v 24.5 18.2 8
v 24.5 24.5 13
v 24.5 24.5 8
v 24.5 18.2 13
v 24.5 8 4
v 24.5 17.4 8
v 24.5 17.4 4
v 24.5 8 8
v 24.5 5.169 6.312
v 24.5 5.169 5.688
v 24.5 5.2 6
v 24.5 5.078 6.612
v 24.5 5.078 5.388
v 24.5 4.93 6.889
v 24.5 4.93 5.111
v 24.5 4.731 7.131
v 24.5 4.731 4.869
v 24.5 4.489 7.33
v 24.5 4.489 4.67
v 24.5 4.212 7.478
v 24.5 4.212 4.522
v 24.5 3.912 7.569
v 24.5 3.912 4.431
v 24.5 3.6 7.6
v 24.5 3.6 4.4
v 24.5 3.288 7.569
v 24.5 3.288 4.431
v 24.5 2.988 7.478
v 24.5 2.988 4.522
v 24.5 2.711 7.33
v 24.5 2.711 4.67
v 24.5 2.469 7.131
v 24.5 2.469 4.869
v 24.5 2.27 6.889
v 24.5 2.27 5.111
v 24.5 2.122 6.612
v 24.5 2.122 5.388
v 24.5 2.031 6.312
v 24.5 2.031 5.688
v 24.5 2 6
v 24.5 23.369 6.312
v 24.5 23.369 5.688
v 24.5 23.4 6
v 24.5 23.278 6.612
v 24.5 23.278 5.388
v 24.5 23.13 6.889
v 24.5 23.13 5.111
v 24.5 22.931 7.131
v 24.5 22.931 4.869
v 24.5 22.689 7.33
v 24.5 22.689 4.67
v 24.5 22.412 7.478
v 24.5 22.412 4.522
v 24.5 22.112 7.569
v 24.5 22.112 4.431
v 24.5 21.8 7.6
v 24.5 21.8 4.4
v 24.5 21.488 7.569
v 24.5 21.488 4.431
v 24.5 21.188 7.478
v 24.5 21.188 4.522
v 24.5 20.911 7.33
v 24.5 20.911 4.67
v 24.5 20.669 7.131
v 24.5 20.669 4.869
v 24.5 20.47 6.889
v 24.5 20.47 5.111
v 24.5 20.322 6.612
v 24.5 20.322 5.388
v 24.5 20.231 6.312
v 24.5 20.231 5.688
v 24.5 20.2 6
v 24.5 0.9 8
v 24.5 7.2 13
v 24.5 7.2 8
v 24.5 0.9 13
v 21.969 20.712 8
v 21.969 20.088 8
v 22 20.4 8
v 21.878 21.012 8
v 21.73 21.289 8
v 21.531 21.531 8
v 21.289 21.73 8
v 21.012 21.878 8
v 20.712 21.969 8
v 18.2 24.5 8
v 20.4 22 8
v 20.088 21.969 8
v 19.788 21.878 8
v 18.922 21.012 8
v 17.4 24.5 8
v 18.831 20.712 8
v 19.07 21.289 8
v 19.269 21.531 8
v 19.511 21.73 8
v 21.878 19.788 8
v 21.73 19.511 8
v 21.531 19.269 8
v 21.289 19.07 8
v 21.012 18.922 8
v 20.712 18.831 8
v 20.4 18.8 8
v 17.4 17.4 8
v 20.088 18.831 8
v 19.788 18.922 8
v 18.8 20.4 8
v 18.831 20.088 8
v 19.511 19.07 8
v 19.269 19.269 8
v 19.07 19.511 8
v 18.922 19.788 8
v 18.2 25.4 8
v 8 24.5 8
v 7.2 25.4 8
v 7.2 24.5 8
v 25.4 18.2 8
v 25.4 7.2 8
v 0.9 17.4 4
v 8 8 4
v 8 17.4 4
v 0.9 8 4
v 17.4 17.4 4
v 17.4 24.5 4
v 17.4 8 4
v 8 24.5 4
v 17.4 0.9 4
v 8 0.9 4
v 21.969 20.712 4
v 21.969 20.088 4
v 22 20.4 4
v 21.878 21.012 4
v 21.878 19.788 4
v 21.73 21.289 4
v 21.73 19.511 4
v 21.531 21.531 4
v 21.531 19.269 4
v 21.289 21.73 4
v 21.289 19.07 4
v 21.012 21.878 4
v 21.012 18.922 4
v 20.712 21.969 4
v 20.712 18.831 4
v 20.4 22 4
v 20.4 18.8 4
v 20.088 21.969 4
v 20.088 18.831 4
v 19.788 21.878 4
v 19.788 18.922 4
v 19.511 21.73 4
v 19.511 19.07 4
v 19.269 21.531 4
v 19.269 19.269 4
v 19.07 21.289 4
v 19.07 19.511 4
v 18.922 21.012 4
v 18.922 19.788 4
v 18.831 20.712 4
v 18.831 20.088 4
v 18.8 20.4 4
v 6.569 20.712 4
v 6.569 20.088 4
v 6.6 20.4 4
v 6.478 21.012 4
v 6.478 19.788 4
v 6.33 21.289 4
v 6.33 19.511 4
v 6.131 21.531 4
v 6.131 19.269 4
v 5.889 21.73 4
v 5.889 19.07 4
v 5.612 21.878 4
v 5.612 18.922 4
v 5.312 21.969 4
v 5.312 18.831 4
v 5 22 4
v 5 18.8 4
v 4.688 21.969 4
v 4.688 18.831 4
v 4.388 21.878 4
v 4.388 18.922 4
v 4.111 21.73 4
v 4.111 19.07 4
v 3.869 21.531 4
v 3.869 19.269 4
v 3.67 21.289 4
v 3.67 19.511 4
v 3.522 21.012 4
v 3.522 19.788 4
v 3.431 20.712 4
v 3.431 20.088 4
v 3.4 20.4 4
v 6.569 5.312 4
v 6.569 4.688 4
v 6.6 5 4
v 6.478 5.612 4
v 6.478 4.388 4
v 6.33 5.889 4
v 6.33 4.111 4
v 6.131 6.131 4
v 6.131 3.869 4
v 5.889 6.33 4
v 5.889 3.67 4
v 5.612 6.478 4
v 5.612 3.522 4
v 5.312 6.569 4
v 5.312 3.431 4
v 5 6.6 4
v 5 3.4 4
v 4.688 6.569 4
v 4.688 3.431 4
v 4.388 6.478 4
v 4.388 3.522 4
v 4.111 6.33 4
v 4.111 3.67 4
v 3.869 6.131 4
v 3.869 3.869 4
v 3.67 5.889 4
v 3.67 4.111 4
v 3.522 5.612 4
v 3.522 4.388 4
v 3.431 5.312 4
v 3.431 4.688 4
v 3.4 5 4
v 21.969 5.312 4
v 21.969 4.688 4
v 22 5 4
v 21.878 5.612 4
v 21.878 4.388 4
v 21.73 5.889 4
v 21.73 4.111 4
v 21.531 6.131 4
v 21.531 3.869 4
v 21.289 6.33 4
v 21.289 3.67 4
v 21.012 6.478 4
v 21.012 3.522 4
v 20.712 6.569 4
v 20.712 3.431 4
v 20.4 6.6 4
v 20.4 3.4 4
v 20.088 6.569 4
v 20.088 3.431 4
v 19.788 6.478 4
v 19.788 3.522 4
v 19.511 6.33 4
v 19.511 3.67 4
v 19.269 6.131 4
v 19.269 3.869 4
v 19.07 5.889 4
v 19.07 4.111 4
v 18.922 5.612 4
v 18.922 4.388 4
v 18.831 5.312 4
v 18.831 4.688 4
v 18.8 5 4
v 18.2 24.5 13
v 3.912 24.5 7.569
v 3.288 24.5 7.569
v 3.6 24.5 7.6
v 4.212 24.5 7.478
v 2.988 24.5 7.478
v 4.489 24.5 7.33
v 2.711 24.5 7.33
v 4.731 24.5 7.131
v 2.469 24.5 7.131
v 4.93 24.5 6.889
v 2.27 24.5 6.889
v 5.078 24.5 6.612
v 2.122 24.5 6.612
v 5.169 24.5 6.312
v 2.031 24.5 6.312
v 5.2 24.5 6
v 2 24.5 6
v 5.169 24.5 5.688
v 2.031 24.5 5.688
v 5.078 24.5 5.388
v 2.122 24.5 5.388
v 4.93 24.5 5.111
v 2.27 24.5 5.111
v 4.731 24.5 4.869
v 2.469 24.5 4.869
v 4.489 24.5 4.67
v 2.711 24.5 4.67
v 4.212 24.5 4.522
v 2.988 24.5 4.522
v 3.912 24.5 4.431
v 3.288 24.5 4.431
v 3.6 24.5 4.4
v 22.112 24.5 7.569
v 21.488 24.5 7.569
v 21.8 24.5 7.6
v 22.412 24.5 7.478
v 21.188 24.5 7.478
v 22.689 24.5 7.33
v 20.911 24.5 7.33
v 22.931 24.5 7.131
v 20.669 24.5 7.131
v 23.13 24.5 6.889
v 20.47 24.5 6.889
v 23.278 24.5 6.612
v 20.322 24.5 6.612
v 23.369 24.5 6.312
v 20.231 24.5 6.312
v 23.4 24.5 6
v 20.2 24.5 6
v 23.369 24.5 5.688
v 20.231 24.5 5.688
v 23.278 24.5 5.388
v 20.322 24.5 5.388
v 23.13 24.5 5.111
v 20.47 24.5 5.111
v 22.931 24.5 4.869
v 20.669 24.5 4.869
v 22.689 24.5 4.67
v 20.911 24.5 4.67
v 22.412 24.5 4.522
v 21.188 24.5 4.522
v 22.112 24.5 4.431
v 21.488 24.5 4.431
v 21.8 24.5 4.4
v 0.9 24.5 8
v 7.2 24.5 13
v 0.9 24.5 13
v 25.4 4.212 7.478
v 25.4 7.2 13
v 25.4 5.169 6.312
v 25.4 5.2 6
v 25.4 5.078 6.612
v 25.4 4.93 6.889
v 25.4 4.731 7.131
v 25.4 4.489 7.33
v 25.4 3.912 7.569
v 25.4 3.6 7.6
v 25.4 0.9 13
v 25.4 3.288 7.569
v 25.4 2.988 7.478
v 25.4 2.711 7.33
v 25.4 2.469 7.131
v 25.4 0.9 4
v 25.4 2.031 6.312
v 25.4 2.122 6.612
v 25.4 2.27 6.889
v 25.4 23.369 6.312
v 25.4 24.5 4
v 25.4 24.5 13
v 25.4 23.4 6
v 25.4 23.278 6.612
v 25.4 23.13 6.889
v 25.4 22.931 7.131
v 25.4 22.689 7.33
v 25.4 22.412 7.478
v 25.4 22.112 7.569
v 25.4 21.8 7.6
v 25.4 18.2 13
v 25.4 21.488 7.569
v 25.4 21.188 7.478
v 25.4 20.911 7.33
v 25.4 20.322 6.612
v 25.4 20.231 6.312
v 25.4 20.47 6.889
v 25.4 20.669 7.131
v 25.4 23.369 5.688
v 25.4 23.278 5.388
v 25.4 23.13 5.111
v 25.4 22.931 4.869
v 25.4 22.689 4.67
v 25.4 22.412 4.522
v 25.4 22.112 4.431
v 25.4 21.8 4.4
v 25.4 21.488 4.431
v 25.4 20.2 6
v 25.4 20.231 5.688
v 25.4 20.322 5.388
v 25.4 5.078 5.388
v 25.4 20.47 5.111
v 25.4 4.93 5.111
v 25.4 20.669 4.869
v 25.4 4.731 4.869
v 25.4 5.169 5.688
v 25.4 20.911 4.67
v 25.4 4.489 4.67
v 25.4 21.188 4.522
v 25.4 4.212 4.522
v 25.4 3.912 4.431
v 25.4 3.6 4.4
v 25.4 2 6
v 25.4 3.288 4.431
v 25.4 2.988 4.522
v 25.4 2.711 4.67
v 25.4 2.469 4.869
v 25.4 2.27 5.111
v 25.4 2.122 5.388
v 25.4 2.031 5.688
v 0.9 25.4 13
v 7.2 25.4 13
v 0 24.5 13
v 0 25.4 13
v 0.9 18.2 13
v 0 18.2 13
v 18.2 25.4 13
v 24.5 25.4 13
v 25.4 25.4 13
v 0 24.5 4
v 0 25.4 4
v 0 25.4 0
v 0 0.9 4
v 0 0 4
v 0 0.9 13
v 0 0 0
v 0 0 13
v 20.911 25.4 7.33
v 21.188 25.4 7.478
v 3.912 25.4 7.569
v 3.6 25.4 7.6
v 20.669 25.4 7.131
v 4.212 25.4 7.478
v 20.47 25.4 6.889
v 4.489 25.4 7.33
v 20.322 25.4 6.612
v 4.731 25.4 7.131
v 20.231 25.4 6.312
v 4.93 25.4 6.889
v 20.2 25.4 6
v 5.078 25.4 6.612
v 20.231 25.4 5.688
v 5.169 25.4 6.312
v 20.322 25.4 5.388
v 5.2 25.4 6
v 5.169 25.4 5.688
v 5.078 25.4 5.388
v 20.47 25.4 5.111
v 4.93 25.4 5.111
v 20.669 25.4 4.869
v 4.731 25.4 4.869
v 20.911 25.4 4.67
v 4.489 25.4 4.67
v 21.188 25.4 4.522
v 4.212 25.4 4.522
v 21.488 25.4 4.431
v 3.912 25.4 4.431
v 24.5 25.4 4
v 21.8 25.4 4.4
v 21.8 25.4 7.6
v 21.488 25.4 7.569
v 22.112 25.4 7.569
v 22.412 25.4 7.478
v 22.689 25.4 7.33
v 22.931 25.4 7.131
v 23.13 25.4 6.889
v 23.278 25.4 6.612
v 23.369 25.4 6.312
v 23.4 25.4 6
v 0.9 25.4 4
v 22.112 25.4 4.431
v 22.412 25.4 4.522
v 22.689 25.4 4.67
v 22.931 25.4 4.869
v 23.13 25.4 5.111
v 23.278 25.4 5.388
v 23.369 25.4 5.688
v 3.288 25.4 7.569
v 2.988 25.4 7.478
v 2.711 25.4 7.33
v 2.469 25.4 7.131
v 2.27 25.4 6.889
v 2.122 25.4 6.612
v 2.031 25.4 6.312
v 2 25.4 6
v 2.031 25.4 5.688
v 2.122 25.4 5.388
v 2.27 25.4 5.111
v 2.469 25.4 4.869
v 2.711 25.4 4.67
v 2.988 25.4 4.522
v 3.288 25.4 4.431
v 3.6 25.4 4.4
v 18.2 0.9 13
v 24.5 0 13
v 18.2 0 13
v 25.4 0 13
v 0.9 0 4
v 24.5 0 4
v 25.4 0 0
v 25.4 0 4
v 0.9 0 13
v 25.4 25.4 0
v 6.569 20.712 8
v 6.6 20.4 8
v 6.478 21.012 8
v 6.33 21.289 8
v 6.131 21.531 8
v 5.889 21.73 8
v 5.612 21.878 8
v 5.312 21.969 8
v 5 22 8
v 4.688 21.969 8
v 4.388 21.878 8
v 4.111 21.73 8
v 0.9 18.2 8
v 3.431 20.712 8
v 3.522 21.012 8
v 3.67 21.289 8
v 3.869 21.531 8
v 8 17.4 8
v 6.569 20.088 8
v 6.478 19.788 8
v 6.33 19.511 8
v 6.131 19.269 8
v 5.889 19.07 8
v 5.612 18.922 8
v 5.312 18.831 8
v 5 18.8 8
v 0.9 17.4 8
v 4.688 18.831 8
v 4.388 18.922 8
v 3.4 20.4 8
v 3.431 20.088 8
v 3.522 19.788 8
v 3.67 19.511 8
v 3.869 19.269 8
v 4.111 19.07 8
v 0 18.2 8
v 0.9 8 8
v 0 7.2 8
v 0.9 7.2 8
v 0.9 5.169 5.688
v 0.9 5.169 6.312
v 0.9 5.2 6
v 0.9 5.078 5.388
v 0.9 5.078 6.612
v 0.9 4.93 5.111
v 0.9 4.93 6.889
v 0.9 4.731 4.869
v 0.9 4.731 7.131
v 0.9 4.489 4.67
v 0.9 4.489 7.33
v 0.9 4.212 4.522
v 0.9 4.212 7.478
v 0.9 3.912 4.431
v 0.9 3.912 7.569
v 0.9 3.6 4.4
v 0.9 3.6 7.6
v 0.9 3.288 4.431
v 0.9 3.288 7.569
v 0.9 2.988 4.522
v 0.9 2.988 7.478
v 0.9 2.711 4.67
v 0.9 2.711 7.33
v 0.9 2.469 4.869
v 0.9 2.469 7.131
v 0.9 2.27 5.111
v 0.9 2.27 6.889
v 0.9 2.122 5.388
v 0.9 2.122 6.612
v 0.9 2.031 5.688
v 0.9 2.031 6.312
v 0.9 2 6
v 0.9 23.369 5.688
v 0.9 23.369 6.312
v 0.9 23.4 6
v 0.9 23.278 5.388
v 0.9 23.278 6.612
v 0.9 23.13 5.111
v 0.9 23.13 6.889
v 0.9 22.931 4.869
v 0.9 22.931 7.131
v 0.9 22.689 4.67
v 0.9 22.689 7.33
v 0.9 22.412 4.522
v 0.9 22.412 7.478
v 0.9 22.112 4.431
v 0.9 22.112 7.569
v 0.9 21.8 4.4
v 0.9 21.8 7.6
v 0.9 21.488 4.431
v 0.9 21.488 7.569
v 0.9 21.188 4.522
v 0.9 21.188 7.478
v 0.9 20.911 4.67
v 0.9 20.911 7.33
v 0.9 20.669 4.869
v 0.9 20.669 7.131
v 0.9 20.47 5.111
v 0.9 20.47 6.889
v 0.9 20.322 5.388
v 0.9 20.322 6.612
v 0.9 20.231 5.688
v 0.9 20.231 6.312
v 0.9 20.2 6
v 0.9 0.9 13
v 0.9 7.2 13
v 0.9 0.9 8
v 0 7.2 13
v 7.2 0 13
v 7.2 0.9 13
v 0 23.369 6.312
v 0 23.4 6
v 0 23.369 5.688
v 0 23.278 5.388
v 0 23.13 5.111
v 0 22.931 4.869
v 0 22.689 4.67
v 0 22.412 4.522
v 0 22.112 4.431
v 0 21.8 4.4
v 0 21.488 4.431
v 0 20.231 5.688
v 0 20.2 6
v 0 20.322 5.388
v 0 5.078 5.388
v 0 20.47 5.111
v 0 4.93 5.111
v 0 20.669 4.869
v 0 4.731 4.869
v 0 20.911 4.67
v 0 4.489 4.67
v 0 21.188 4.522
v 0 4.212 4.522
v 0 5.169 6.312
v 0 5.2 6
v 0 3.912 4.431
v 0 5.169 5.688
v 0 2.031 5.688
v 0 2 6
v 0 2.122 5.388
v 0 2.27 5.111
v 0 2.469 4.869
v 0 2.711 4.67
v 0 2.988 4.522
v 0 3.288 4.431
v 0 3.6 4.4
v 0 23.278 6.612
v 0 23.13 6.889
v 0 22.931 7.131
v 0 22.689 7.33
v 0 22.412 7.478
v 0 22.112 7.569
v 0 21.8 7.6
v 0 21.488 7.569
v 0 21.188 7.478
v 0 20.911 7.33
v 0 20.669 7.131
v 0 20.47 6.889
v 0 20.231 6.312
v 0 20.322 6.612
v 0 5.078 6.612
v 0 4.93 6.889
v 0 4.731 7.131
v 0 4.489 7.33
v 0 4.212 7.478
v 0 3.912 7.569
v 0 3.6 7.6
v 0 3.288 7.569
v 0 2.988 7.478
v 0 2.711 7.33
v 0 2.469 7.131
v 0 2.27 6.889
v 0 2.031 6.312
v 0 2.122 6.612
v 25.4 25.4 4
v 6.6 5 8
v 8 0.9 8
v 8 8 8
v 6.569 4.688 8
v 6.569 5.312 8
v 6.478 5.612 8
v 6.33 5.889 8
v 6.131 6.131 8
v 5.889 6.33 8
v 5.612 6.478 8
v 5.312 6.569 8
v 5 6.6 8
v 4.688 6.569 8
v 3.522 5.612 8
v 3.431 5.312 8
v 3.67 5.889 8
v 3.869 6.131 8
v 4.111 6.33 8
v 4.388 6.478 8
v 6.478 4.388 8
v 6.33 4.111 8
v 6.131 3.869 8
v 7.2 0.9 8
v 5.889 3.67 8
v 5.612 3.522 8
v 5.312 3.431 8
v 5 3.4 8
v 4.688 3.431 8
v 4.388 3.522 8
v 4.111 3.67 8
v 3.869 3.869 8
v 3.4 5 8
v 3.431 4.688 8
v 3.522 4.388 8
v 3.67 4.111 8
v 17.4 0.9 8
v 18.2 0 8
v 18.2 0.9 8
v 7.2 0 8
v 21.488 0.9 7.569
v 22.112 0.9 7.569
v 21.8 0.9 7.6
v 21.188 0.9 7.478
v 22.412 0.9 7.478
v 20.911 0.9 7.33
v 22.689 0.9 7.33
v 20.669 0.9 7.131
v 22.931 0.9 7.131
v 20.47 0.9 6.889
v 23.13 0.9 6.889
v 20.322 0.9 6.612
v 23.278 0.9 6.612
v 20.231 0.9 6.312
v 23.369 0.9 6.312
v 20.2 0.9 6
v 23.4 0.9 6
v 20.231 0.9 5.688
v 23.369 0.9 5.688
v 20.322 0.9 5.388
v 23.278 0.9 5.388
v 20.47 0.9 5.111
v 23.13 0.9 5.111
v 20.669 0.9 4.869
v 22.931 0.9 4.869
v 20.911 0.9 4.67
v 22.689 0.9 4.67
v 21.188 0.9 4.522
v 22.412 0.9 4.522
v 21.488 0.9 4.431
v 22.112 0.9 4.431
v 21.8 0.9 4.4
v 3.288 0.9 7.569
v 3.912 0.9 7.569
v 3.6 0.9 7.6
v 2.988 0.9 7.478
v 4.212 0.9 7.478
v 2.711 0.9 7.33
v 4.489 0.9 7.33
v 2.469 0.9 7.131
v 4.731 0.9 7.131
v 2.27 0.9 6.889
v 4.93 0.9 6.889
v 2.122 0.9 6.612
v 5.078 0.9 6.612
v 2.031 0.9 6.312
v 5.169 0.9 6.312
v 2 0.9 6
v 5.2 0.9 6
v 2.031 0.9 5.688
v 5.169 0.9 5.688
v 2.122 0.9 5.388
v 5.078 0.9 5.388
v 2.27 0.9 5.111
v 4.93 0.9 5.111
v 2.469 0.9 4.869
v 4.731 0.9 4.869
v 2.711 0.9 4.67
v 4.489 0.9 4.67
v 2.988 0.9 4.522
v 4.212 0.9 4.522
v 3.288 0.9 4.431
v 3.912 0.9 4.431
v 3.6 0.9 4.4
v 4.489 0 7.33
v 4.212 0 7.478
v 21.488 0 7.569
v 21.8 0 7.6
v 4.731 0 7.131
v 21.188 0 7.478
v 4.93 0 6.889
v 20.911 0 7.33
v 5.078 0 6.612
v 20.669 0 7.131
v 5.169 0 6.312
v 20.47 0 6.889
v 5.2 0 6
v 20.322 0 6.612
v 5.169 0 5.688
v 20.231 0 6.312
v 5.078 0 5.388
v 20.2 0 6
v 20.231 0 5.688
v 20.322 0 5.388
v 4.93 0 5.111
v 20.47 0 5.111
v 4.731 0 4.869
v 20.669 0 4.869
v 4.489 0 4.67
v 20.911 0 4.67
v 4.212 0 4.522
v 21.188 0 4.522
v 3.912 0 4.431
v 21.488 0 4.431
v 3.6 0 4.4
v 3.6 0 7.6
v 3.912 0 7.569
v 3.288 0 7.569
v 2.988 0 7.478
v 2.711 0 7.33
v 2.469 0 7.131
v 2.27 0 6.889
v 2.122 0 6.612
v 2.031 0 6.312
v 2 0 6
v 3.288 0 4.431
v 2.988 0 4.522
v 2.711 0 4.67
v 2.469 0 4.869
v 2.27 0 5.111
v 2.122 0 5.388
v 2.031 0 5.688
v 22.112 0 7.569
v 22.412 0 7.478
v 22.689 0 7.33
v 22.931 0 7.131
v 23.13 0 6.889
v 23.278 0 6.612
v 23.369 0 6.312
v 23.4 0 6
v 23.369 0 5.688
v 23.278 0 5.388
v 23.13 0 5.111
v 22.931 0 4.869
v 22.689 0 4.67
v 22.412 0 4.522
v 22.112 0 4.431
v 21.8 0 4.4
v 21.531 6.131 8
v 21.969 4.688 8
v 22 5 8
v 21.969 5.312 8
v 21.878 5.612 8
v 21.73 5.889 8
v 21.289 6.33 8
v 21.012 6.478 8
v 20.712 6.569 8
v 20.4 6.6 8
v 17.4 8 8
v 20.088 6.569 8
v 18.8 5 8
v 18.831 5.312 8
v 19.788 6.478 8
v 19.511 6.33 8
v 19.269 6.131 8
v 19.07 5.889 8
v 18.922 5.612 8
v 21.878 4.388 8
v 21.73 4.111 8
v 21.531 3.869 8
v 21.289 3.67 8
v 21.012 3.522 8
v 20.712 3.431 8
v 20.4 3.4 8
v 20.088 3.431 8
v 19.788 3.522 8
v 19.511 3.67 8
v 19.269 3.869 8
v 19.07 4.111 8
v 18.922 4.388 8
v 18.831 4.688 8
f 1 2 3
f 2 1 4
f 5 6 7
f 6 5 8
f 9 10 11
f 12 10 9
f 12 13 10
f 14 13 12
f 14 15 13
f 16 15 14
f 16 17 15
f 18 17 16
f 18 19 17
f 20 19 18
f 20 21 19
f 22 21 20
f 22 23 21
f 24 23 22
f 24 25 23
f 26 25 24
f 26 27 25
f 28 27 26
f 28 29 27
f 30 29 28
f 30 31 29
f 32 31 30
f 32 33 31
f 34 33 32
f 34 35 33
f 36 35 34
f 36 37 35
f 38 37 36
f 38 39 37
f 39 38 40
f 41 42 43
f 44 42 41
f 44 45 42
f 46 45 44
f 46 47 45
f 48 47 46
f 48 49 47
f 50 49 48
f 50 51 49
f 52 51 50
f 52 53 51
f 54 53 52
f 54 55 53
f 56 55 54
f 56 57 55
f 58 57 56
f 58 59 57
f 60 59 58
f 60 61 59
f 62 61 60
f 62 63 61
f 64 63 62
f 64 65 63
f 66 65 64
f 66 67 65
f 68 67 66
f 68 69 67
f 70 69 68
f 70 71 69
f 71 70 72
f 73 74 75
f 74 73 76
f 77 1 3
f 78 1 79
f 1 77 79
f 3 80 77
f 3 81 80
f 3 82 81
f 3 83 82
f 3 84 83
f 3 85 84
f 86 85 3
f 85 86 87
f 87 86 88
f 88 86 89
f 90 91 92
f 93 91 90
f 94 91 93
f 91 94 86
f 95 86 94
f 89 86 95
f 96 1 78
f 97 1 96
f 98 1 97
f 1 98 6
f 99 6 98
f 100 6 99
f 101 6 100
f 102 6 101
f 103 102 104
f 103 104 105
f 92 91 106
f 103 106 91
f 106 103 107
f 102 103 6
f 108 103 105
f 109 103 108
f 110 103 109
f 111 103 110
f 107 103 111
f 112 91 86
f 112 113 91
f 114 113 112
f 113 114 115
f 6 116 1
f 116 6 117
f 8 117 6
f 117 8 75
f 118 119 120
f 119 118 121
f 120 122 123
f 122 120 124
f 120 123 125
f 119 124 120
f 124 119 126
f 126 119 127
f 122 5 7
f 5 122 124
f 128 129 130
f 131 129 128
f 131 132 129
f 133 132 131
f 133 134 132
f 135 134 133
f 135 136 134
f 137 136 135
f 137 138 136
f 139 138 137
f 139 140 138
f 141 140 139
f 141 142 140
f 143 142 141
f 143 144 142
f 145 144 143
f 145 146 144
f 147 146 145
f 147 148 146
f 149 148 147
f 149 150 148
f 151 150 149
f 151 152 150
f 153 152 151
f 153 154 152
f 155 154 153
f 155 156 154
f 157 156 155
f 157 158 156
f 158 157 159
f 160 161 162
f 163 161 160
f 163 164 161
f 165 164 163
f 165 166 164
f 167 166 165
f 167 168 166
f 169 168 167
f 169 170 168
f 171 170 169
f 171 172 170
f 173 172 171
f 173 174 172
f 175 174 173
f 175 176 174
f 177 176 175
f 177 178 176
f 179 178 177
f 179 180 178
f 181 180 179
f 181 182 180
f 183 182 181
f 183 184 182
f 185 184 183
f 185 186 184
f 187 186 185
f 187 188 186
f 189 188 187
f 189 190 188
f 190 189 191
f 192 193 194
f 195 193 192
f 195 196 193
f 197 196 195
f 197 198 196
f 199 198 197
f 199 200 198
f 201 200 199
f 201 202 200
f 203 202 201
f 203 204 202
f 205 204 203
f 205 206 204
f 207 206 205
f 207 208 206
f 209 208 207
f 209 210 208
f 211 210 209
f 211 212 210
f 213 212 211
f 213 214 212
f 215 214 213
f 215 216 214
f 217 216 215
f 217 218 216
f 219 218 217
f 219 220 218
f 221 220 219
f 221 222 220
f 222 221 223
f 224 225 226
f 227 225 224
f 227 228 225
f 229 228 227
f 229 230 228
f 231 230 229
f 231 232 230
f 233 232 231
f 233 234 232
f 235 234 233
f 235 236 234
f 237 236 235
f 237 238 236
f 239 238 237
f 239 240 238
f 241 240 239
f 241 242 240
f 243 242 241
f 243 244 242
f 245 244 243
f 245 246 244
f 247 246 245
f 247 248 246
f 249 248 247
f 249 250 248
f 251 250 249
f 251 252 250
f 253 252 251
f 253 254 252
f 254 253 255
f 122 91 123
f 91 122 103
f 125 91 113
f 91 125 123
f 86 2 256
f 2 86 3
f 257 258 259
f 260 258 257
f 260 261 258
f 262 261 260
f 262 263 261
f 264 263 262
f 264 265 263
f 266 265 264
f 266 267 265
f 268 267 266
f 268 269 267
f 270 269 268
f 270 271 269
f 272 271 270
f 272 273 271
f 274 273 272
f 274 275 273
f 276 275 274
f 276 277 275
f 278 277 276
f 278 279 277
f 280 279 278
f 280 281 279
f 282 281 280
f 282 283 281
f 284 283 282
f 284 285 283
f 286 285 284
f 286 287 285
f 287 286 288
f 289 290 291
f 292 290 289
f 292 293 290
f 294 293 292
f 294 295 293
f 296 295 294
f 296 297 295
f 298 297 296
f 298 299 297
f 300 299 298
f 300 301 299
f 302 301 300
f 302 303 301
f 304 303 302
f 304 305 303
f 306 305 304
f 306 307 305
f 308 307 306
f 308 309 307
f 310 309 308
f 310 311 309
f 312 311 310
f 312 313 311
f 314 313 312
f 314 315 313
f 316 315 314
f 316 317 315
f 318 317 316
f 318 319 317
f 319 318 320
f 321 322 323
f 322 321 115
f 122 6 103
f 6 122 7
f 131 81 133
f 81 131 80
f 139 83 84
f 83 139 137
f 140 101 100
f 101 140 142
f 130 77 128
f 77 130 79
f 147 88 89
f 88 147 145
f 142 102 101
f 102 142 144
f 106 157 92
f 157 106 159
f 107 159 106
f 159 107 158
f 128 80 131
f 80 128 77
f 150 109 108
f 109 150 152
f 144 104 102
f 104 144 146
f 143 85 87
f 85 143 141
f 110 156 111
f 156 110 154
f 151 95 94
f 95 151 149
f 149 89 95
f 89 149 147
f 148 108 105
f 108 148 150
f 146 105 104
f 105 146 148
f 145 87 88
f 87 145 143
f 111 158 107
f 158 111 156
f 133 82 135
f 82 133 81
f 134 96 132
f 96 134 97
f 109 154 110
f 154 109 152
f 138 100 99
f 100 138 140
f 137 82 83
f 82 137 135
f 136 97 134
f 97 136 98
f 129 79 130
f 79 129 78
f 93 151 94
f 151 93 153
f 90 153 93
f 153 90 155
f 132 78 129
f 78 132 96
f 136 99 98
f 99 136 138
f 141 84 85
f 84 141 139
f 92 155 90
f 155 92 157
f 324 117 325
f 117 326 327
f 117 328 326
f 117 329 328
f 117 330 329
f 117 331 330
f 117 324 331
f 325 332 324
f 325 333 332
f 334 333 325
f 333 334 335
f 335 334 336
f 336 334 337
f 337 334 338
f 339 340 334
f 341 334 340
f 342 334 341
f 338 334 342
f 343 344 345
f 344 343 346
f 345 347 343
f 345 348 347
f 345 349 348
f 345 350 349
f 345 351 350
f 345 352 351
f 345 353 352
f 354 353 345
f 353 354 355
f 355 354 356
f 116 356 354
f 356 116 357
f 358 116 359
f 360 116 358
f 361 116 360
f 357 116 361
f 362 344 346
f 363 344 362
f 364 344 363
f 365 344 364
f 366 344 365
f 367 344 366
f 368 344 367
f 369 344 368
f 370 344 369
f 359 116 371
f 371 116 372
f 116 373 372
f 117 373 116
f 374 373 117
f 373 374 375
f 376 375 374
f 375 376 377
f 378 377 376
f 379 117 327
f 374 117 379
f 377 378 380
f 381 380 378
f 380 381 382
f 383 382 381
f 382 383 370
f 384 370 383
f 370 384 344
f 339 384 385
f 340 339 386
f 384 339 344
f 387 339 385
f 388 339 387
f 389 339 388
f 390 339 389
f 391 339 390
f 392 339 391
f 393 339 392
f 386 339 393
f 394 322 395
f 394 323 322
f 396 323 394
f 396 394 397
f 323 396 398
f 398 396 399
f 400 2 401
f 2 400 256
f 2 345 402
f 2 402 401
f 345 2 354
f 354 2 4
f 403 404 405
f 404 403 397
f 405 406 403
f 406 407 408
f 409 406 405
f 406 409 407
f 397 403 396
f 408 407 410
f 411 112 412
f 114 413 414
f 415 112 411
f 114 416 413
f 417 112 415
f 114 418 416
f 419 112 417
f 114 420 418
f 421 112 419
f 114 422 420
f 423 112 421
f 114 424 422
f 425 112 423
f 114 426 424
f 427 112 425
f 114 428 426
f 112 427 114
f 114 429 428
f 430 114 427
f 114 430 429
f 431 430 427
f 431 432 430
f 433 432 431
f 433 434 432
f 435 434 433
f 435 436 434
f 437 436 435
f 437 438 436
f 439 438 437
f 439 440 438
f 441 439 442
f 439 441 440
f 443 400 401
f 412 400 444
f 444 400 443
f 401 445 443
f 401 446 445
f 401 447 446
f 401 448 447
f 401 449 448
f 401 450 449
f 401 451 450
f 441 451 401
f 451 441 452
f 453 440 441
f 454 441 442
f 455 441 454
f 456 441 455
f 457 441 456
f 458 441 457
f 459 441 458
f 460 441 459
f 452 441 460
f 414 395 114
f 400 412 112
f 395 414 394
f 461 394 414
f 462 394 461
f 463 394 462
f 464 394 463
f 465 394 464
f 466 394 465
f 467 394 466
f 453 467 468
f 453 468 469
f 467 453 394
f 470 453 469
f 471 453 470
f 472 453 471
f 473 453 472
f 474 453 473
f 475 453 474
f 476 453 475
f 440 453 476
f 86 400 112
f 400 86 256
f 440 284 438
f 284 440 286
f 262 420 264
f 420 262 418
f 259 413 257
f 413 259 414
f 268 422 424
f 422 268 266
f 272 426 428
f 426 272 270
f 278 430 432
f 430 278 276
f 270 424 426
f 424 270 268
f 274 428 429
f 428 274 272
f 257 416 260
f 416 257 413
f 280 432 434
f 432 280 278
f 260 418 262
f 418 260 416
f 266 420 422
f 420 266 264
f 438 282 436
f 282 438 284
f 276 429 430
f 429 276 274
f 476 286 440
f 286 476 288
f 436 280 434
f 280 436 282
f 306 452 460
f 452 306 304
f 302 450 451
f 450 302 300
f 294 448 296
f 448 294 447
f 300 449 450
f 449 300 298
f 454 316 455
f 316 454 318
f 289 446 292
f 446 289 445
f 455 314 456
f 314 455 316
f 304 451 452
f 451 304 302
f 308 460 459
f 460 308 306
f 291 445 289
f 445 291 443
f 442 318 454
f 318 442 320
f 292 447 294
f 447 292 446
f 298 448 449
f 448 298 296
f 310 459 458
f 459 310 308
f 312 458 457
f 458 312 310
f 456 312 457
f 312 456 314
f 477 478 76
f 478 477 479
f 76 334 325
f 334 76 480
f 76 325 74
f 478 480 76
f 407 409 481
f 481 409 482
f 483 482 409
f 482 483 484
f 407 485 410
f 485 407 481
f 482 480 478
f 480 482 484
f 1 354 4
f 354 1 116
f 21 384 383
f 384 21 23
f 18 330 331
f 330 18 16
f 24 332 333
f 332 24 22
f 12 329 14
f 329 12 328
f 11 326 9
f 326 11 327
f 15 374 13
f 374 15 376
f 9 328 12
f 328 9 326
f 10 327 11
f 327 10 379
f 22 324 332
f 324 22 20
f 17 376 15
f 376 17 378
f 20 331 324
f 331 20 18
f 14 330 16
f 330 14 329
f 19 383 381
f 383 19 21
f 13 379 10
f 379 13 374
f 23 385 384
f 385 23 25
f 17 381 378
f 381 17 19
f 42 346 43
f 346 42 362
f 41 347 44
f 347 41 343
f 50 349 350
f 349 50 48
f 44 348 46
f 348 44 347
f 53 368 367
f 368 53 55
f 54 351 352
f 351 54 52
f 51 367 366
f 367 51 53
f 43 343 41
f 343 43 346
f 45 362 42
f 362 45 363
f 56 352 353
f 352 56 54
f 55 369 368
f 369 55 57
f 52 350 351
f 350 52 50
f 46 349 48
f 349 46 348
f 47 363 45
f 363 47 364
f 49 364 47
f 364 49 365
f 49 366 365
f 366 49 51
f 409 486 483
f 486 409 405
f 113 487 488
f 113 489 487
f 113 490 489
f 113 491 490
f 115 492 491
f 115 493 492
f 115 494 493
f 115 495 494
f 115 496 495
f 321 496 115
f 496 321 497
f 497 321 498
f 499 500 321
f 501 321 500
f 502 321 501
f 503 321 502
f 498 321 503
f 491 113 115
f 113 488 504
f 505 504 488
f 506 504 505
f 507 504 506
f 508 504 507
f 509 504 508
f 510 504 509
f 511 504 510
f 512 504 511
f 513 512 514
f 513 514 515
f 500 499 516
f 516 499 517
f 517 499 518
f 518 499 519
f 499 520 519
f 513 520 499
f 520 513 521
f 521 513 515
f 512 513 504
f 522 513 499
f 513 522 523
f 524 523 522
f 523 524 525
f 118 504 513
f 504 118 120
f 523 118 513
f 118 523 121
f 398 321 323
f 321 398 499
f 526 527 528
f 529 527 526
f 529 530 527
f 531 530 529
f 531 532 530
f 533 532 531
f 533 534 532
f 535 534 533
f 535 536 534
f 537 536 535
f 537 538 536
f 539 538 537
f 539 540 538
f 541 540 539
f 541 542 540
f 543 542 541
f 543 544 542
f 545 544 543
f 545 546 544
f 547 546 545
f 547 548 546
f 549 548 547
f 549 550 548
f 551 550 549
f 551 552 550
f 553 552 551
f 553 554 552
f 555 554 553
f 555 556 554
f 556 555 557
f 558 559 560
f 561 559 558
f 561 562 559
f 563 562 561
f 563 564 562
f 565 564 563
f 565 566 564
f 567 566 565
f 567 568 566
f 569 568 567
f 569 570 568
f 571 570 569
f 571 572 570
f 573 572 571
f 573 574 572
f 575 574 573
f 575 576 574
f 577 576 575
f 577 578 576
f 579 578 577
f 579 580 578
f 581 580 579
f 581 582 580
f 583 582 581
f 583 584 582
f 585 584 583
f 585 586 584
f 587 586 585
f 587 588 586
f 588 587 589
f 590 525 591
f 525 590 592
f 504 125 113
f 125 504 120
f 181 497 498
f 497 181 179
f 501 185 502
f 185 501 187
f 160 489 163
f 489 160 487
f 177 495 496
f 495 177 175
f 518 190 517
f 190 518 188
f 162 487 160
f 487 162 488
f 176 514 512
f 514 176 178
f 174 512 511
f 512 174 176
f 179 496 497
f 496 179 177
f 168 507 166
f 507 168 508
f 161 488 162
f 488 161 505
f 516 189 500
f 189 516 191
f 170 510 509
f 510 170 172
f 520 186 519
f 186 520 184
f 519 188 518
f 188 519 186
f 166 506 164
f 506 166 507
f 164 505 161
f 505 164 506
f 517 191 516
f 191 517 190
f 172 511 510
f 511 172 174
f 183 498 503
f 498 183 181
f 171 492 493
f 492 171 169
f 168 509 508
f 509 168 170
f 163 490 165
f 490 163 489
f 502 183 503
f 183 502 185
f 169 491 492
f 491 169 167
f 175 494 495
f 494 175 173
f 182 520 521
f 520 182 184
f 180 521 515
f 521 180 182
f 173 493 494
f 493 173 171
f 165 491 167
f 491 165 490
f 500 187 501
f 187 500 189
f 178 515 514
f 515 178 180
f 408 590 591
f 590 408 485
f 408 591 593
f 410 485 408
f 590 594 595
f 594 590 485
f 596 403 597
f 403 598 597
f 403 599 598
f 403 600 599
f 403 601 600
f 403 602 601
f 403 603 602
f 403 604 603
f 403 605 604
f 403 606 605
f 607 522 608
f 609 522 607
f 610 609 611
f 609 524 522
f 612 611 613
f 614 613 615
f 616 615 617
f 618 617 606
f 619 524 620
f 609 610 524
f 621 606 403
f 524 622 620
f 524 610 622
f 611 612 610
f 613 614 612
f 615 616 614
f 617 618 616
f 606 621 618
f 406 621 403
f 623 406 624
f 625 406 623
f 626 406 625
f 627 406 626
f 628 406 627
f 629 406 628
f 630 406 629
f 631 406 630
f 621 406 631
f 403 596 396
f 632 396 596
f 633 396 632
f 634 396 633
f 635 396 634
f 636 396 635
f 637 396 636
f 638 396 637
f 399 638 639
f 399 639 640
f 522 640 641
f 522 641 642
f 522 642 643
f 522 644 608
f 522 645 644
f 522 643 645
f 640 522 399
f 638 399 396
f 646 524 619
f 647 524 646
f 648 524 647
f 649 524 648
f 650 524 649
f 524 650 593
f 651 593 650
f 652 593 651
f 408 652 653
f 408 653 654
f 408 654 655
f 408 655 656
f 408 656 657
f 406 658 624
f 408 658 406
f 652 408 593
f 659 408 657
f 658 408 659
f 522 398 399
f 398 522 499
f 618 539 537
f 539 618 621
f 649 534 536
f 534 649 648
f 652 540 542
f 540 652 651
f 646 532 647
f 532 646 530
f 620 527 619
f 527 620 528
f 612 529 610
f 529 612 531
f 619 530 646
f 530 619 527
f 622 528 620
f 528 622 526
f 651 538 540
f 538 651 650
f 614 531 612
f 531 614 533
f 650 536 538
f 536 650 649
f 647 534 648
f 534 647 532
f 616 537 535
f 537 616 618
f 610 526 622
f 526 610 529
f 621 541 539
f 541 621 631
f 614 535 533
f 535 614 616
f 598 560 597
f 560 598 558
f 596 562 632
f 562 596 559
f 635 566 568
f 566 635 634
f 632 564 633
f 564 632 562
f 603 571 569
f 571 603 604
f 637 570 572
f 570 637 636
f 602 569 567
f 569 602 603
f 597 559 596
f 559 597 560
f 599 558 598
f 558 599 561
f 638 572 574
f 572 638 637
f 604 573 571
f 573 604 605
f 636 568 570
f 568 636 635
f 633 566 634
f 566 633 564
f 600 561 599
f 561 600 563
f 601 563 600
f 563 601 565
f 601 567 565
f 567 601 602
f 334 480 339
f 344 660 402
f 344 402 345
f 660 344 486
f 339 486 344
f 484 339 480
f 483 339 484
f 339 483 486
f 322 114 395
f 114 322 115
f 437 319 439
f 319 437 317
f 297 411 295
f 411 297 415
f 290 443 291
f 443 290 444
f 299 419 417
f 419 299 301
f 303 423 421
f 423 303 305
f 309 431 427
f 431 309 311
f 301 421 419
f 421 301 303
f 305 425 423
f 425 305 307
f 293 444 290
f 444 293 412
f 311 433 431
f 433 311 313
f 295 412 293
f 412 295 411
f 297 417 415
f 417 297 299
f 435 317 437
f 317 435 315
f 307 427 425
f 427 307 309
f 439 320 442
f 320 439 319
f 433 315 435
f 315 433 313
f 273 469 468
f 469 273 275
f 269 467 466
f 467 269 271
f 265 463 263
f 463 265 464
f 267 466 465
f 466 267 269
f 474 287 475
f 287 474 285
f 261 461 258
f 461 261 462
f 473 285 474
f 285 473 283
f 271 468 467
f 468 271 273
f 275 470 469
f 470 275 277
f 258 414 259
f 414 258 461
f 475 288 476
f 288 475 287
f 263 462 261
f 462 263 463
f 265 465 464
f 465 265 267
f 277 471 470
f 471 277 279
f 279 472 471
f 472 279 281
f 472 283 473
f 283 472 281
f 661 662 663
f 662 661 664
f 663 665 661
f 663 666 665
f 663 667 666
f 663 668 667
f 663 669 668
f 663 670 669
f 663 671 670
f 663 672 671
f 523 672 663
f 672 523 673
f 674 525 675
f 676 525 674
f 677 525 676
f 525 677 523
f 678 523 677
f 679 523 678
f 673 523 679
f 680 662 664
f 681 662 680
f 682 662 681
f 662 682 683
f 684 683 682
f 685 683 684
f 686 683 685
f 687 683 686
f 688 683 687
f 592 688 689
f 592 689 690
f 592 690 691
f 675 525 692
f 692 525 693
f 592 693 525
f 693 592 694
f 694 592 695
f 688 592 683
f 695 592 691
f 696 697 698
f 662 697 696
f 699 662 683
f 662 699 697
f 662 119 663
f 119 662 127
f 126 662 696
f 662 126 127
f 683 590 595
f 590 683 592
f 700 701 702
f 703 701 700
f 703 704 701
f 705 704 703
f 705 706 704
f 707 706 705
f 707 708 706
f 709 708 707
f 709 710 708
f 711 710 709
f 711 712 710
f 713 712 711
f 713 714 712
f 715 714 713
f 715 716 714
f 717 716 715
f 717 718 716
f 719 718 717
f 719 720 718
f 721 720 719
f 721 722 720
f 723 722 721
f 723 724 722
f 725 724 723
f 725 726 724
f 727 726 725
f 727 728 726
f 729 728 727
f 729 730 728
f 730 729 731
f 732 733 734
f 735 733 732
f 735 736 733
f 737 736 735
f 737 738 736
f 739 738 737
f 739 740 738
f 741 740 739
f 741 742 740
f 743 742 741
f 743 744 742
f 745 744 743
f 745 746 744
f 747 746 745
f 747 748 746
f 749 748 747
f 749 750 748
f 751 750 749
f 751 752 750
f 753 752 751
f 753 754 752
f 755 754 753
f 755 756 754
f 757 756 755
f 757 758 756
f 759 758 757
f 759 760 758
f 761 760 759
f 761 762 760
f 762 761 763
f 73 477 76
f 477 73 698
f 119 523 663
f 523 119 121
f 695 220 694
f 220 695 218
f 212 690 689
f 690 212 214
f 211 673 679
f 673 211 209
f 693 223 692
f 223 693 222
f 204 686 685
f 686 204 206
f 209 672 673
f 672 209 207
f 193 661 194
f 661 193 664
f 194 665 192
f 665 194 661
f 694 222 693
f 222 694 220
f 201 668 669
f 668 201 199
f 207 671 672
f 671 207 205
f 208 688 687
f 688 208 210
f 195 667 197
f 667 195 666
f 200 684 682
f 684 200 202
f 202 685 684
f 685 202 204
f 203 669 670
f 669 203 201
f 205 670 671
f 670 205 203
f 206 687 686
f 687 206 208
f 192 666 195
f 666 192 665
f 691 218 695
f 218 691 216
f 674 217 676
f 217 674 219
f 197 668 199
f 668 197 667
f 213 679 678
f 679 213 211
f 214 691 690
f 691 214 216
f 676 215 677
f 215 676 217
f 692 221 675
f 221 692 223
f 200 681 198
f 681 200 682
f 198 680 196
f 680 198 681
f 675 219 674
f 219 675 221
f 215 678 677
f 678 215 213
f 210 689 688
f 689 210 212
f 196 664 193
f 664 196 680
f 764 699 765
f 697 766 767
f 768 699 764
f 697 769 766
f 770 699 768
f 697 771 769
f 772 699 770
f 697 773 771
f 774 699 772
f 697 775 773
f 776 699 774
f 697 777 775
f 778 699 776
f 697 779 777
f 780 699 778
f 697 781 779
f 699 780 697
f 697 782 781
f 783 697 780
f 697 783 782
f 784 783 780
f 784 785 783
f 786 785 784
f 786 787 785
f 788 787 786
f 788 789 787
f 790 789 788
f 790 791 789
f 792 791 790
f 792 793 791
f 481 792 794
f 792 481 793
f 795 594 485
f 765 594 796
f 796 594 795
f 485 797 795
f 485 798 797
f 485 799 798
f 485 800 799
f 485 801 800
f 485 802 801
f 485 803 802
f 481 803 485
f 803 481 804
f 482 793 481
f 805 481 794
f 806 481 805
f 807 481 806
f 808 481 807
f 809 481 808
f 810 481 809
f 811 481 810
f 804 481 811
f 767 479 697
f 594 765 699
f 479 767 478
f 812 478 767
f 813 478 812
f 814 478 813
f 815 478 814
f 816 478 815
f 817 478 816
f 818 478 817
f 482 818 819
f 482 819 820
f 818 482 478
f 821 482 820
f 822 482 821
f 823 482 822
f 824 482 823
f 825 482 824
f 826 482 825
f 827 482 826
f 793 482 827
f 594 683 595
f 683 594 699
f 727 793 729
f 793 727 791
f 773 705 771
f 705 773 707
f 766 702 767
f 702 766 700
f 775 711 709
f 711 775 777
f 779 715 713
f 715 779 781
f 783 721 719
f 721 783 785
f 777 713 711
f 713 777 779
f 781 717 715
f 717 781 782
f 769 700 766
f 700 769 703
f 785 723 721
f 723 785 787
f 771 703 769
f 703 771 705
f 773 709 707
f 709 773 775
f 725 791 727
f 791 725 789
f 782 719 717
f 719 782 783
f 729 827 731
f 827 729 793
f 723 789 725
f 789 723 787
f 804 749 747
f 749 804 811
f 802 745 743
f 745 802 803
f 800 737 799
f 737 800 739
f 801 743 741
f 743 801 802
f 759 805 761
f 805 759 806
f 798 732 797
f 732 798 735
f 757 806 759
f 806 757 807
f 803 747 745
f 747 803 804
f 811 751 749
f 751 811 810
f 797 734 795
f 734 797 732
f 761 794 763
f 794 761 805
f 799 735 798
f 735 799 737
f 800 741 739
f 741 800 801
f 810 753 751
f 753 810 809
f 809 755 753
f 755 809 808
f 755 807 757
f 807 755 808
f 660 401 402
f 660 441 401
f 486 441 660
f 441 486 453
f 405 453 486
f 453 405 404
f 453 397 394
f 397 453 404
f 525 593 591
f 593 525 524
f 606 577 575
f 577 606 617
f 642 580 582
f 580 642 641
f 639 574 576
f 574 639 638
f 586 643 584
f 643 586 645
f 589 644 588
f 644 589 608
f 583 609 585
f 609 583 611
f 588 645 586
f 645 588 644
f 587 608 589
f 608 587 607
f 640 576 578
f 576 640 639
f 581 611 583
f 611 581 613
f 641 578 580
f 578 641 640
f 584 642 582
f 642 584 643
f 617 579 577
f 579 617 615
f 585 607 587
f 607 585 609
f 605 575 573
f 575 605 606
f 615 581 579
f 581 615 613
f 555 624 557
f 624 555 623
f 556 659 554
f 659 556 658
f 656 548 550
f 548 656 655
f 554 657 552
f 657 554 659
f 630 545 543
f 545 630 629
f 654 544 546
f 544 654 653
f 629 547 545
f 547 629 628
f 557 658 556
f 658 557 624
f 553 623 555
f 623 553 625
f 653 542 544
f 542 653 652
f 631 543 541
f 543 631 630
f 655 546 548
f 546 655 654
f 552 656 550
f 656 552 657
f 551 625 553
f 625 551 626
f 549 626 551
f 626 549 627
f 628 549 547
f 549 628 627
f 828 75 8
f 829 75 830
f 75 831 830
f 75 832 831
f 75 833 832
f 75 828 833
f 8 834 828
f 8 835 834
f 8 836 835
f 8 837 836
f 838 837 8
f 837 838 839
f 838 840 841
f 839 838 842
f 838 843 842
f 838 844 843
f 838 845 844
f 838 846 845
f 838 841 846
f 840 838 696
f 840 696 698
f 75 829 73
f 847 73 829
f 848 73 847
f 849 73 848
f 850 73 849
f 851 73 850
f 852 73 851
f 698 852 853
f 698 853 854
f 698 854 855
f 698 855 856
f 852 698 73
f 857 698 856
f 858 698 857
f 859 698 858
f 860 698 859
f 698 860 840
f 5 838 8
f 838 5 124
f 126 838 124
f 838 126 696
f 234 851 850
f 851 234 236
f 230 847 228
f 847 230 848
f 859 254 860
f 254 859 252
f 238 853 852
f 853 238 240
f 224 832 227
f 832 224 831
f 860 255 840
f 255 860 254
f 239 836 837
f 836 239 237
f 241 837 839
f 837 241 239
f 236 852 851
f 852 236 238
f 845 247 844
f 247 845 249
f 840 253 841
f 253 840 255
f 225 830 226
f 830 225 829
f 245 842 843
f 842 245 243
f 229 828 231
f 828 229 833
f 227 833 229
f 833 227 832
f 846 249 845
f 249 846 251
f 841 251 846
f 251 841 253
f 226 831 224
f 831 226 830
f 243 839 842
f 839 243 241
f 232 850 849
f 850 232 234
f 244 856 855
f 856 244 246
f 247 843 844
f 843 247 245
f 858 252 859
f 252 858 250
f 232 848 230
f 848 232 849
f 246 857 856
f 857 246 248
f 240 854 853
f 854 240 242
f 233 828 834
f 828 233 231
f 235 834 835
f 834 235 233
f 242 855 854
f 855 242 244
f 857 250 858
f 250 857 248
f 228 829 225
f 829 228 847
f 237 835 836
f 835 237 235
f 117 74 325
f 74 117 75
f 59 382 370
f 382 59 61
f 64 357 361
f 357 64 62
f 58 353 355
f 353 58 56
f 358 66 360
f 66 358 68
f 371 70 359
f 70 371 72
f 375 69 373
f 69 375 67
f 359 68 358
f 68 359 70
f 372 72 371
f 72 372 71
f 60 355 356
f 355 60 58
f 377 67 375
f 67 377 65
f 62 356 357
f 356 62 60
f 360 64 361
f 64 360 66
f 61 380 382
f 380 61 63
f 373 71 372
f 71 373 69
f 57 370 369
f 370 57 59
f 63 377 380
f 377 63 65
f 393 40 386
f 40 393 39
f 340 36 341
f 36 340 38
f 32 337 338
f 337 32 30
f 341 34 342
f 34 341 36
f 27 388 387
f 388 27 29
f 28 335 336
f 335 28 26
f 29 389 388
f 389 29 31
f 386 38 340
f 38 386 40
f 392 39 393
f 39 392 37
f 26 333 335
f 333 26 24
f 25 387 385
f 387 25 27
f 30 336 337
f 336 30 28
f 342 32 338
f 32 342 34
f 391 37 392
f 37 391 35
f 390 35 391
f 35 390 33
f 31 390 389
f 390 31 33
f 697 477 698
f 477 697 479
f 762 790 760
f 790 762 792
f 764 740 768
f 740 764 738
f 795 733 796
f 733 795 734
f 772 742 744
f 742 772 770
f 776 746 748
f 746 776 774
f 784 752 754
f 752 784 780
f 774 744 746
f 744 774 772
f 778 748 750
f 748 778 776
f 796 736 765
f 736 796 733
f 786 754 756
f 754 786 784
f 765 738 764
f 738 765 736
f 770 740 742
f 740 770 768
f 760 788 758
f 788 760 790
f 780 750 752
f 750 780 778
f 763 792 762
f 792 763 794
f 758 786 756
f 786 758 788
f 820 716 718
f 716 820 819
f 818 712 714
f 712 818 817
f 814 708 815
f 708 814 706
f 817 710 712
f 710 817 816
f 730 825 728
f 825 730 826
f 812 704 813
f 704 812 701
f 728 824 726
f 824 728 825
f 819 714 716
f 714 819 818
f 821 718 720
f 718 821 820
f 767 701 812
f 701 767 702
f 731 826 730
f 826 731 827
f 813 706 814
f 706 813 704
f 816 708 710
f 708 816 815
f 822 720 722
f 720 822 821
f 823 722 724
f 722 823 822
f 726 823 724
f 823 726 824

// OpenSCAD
base = 4;
wall_height = 0.9;







module corner_base(){
    cube([25.4,25.4,base],center = false);
    rotate([0,0,270]){
        translate([0,0,0]){
            mirror([1,0,0]){
                difference(){
        union(){
            
            translate([0,25.4-wall_height,base])
                cube([25.4,0.9,9]);
            
            
            difference(){
                translate([17.4,17.4,base])
                    cube([7.1,7.1,4],center = false);
                translate([20.4,20.4,base+2.5])
                    cylinder(h = 5, r = 1.6,center = true,$fn = 32  );
            }
        }
        translate([25.4/2 - 11/2,25.4-2,base+4])
            cube([11,5,10]);
        translate([3.6,24.9,base+2]){
            rotate([90,0,0])
            cylinder(h=3,r=1.6,center = true,$fn = 32);
    }
        translate([21.8,24.9,base+2]){
            rotate([90,0,0])
                cylinder(h=3,r=1.6,center = true,$fn = 32);
    }
    }   
                
            }
            
    }      
        
    }

    difference(){
        union(){
            
            translate([0,25.4-wall_height,base])
                cube([25.4,0.9,9]);
            
            
            difference(){
                translate([17.4,17.4,base])
                    cube([7.1,7.1,4],center = false);
                translate([20.4,20.4,base+2.5])
                    cylinder(h = 5, r = 1.6,center = true,$fn = 32  );
            }
        }
        translate([25.4/2 - 11/2,25.4-2,base+4])
            cube([11,5,10]);
        translate([3.6,24.9,base+2]){
            rotate([90,0,0])
            cylinder(h=3,r=1.6,center = true,$fn = 32);
    }
        translate([21.8,24.9,base+2]){
            rotate([90,0,0])
                cylinder(h=3,r=1.6,center = true,$fn = 32);
    }
    }   
}
















module edge_base(){
    translate([-25.4,0,0]){

        cube([25.4,25.4,base],center = false);
        

        difference(){
            union(){
                
                translate([0,25.4-wall_height,base])
                    cube([25.4,0.9,9]);
                translate([0,17.4,base])
                        cube([7.1,7.1,4],center = false);
                
                difference(){
                    translate([17.4,17.4,base])
                        cube([7.1,7.1,4],center = false);
                    
                }
            }
            translate([25.4/2 - 11/2,25.4-2,base+4])
                cube([11,5,10]);
            translate([3.6,24.9,base+2]){
                rotate([90,0,0])
                cylinder(h=3,r=1.6,center = true,$fn = 32);
        }
            translate([21.8,24.9,base+2]){
                rotate([90,0,0])
                    cylinder(h=3,r=1.6,center = true,$fn = 32);
        }
        }
    }

}








module corner_top(){
    difference(){
        union(){
            translate([18.4,18.4,10]){
                cube([6.1,6.1,3]);
            }
            translate([0,0,9+base]){
                cube([25.4,25.4,2]);
            }
        }
        
        
        translate([20.4,20.4,12.5])
            cylinder(h = 15, r = 1.6,center = true,$fn = 32  );

    }
}
union(){
    corner_base();
    translate([25.4,0,0])
        rotate([0,0,90])
            corner_base();
    translate([25.4,25.4])
        rotate([0,0,180])
            corner_base();
    translate([0,25.4])
        rotate([0,0,270])
            corner_base();
}
